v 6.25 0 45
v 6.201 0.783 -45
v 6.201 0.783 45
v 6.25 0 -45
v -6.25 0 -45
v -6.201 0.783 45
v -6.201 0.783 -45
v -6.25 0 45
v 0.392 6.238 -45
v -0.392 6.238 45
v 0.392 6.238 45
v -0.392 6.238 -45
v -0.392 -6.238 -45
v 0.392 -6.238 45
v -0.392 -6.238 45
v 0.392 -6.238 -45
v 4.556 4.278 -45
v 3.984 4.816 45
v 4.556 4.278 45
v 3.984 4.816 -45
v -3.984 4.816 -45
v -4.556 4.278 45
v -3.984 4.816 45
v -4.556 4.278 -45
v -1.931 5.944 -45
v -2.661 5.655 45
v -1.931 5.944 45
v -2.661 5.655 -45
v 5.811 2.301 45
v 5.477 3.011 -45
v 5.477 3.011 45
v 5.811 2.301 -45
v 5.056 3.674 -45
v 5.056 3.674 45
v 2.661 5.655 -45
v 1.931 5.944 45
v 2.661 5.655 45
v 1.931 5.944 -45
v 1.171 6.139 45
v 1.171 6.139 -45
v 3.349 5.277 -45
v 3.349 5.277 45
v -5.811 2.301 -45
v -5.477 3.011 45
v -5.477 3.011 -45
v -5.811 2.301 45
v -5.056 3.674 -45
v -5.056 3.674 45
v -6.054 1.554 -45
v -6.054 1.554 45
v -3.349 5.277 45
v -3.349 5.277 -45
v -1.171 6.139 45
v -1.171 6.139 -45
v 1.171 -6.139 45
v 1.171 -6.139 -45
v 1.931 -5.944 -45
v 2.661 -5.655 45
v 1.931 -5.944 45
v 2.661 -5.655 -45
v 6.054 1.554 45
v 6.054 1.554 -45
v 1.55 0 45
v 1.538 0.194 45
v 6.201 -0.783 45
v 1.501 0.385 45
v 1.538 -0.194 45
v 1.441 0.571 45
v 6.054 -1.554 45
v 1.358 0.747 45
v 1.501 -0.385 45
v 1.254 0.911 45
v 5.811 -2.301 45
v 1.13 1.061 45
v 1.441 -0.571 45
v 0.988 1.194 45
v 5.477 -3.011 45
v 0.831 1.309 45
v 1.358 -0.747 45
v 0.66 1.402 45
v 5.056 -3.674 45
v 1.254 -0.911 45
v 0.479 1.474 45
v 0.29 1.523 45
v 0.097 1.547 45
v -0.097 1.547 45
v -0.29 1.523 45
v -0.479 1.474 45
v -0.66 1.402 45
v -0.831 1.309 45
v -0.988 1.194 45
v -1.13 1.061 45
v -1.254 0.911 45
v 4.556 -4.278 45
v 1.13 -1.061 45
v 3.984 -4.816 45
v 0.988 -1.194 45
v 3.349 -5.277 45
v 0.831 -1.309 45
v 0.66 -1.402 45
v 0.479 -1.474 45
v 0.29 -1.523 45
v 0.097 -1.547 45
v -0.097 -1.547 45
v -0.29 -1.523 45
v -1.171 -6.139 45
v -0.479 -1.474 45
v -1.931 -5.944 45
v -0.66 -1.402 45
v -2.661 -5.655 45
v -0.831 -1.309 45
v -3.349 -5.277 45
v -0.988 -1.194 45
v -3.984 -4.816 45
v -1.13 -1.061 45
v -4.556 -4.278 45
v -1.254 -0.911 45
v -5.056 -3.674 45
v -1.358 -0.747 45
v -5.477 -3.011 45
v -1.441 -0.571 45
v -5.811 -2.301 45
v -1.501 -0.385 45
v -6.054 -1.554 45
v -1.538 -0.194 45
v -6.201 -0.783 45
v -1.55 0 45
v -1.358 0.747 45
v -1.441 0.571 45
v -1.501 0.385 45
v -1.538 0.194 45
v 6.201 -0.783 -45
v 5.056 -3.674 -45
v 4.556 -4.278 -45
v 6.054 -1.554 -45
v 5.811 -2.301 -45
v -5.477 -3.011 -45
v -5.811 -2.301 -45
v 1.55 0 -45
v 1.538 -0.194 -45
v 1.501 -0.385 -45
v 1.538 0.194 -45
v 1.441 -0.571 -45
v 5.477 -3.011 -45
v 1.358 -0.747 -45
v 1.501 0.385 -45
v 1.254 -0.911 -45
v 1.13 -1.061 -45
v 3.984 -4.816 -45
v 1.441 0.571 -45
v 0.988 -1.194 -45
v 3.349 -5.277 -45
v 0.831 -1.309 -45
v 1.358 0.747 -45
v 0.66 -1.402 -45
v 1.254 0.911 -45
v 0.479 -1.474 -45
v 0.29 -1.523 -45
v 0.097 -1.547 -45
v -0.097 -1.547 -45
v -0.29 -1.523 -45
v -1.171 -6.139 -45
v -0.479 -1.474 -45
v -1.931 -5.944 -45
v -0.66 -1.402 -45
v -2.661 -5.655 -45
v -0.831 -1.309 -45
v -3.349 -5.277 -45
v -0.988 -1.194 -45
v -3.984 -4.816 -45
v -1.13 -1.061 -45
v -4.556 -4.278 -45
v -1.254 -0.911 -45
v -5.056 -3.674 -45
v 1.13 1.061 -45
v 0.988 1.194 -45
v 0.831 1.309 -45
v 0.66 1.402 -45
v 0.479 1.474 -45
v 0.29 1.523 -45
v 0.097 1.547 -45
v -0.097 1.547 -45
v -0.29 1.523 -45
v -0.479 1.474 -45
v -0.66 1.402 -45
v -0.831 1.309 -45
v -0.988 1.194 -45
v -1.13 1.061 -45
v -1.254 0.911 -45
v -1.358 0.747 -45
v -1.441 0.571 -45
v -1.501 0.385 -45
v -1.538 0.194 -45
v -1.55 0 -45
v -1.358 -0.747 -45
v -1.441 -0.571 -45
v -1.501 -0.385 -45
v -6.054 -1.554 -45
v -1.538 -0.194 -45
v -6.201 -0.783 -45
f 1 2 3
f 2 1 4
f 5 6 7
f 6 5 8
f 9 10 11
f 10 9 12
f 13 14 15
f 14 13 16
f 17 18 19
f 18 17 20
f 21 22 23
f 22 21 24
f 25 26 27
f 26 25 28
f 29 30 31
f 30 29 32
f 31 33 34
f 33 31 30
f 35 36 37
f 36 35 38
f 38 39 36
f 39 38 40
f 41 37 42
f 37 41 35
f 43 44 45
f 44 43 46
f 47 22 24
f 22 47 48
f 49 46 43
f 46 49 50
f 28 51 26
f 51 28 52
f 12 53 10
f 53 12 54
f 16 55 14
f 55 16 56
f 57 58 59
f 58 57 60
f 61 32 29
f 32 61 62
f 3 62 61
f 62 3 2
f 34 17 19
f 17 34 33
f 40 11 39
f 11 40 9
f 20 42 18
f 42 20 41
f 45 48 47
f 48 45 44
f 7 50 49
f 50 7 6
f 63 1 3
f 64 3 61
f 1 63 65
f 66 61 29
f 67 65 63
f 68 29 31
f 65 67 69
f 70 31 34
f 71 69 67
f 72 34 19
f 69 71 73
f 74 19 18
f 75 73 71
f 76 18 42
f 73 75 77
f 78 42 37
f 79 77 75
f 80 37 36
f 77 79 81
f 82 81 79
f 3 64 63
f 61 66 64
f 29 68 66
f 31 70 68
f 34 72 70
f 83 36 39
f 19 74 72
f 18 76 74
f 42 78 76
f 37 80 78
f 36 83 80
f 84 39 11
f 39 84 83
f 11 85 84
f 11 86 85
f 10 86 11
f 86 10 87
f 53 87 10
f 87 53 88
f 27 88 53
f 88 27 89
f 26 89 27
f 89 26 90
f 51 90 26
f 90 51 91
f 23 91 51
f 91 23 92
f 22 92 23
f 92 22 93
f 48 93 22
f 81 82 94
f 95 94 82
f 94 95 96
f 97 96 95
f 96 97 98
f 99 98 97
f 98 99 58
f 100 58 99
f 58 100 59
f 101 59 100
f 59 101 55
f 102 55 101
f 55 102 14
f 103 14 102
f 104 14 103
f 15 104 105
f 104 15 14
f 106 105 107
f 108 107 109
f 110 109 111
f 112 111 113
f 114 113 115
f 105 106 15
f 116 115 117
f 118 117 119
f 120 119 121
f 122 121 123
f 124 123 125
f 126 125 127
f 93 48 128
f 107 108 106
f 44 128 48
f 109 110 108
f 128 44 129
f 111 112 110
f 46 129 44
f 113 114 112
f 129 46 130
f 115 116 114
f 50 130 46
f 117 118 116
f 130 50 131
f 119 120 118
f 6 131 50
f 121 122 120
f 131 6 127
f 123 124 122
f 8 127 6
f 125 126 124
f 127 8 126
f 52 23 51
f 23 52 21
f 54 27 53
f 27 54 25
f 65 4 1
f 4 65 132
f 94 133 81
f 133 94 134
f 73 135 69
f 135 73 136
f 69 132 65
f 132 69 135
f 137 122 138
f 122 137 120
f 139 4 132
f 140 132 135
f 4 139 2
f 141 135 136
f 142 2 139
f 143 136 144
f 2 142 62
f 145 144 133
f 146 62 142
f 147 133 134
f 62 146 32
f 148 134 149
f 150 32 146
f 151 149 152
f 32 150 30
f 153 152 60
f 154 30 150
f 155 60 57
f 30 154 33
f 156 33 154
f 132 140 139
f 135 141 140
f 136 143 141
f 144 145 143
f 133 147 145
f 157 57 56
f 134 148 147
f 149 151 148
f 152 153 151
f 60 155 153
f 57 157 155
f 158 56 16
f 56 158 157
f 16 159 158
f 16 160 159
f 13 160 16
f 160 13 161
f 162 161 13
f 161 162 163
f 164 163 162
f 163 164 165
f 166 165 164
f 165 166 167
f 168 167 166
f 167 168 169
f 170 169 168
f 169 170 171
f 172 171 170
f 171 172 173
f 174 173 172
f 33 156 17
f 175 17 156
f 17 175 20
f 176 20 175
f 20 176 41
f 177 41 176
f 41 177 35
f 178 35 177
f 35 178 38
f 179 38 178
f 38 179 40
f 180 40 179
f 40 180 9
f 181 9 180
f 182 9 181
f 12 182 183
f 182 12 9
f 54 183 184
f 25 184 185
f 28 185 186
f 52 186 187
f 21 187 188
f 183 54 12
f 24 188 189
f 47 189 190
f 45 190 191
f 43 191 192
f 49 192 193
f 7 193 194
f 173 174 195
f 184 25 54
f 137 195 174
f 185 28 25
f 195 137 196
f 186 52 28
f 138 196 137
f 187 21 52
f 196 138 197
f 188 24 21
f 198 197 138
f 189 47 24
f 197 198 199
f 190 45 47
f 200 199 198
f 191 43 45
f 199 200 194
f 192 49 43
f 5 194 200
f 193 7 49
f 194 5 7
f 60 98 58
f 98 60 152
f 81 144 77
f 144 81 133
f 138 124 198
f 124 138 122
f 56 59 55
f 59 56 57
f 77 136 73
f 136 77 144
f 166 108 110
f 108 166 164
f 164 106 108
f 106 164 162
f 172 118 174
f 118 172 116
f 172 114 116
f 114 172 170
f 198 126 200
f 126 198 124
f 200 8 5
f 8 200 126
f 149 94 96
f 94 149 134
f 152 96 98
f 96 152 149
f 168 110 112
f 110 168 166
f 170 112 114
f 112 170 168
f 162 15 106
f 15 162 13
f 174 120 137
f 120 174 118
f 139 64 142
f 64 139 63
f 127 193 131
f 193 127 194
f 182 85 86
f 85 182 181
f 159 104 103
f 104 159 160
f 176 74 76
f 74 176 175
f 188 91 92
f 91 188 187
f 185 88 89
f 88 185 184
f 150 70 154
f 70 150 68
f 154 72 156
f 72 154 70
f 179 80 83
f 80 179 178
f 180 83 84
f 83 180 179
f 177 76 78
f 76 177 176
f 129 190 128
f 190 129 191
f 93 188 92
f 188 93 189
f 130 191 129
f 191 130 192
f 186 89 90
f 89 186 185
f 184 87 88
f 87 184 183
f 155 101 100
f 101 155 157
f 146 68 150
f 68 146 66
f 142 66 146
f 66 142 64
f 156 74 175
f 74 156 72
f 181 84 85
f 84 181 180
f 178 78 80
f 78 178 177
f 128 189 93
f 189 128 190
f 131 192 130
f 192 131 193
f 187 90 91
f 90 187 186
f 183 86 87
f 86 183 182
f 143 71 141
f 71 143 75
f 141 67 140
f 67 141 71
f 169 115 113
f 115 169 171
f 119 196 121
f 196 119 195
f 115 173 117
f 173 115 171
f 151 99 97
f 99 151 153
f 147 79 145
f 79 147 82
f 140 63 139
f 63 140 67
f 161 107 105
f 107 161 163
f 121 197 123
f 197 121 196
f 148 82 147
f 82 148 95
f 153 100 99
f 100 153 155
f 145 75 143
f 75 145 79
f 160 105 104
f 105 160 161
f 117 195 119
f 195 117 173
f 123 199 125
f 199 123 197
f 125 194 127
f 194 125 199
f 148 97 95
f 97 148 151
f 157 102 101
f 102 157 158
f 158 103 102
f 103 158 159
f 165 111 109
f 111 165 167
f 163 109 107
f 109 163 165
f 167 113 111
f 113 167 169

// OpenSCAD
$fn = 50;


difference() {
	union() {
		translate(v = [0, 0, -45.0000000000]) {
			cylinder(h = 90, r = 6.2500000000);
		}
	}
	union() {
		translate(v = [0, 0, -100.0000000000]) {
			cylinder(h = 200, r = 1.5500000000);
		}
	}
}
